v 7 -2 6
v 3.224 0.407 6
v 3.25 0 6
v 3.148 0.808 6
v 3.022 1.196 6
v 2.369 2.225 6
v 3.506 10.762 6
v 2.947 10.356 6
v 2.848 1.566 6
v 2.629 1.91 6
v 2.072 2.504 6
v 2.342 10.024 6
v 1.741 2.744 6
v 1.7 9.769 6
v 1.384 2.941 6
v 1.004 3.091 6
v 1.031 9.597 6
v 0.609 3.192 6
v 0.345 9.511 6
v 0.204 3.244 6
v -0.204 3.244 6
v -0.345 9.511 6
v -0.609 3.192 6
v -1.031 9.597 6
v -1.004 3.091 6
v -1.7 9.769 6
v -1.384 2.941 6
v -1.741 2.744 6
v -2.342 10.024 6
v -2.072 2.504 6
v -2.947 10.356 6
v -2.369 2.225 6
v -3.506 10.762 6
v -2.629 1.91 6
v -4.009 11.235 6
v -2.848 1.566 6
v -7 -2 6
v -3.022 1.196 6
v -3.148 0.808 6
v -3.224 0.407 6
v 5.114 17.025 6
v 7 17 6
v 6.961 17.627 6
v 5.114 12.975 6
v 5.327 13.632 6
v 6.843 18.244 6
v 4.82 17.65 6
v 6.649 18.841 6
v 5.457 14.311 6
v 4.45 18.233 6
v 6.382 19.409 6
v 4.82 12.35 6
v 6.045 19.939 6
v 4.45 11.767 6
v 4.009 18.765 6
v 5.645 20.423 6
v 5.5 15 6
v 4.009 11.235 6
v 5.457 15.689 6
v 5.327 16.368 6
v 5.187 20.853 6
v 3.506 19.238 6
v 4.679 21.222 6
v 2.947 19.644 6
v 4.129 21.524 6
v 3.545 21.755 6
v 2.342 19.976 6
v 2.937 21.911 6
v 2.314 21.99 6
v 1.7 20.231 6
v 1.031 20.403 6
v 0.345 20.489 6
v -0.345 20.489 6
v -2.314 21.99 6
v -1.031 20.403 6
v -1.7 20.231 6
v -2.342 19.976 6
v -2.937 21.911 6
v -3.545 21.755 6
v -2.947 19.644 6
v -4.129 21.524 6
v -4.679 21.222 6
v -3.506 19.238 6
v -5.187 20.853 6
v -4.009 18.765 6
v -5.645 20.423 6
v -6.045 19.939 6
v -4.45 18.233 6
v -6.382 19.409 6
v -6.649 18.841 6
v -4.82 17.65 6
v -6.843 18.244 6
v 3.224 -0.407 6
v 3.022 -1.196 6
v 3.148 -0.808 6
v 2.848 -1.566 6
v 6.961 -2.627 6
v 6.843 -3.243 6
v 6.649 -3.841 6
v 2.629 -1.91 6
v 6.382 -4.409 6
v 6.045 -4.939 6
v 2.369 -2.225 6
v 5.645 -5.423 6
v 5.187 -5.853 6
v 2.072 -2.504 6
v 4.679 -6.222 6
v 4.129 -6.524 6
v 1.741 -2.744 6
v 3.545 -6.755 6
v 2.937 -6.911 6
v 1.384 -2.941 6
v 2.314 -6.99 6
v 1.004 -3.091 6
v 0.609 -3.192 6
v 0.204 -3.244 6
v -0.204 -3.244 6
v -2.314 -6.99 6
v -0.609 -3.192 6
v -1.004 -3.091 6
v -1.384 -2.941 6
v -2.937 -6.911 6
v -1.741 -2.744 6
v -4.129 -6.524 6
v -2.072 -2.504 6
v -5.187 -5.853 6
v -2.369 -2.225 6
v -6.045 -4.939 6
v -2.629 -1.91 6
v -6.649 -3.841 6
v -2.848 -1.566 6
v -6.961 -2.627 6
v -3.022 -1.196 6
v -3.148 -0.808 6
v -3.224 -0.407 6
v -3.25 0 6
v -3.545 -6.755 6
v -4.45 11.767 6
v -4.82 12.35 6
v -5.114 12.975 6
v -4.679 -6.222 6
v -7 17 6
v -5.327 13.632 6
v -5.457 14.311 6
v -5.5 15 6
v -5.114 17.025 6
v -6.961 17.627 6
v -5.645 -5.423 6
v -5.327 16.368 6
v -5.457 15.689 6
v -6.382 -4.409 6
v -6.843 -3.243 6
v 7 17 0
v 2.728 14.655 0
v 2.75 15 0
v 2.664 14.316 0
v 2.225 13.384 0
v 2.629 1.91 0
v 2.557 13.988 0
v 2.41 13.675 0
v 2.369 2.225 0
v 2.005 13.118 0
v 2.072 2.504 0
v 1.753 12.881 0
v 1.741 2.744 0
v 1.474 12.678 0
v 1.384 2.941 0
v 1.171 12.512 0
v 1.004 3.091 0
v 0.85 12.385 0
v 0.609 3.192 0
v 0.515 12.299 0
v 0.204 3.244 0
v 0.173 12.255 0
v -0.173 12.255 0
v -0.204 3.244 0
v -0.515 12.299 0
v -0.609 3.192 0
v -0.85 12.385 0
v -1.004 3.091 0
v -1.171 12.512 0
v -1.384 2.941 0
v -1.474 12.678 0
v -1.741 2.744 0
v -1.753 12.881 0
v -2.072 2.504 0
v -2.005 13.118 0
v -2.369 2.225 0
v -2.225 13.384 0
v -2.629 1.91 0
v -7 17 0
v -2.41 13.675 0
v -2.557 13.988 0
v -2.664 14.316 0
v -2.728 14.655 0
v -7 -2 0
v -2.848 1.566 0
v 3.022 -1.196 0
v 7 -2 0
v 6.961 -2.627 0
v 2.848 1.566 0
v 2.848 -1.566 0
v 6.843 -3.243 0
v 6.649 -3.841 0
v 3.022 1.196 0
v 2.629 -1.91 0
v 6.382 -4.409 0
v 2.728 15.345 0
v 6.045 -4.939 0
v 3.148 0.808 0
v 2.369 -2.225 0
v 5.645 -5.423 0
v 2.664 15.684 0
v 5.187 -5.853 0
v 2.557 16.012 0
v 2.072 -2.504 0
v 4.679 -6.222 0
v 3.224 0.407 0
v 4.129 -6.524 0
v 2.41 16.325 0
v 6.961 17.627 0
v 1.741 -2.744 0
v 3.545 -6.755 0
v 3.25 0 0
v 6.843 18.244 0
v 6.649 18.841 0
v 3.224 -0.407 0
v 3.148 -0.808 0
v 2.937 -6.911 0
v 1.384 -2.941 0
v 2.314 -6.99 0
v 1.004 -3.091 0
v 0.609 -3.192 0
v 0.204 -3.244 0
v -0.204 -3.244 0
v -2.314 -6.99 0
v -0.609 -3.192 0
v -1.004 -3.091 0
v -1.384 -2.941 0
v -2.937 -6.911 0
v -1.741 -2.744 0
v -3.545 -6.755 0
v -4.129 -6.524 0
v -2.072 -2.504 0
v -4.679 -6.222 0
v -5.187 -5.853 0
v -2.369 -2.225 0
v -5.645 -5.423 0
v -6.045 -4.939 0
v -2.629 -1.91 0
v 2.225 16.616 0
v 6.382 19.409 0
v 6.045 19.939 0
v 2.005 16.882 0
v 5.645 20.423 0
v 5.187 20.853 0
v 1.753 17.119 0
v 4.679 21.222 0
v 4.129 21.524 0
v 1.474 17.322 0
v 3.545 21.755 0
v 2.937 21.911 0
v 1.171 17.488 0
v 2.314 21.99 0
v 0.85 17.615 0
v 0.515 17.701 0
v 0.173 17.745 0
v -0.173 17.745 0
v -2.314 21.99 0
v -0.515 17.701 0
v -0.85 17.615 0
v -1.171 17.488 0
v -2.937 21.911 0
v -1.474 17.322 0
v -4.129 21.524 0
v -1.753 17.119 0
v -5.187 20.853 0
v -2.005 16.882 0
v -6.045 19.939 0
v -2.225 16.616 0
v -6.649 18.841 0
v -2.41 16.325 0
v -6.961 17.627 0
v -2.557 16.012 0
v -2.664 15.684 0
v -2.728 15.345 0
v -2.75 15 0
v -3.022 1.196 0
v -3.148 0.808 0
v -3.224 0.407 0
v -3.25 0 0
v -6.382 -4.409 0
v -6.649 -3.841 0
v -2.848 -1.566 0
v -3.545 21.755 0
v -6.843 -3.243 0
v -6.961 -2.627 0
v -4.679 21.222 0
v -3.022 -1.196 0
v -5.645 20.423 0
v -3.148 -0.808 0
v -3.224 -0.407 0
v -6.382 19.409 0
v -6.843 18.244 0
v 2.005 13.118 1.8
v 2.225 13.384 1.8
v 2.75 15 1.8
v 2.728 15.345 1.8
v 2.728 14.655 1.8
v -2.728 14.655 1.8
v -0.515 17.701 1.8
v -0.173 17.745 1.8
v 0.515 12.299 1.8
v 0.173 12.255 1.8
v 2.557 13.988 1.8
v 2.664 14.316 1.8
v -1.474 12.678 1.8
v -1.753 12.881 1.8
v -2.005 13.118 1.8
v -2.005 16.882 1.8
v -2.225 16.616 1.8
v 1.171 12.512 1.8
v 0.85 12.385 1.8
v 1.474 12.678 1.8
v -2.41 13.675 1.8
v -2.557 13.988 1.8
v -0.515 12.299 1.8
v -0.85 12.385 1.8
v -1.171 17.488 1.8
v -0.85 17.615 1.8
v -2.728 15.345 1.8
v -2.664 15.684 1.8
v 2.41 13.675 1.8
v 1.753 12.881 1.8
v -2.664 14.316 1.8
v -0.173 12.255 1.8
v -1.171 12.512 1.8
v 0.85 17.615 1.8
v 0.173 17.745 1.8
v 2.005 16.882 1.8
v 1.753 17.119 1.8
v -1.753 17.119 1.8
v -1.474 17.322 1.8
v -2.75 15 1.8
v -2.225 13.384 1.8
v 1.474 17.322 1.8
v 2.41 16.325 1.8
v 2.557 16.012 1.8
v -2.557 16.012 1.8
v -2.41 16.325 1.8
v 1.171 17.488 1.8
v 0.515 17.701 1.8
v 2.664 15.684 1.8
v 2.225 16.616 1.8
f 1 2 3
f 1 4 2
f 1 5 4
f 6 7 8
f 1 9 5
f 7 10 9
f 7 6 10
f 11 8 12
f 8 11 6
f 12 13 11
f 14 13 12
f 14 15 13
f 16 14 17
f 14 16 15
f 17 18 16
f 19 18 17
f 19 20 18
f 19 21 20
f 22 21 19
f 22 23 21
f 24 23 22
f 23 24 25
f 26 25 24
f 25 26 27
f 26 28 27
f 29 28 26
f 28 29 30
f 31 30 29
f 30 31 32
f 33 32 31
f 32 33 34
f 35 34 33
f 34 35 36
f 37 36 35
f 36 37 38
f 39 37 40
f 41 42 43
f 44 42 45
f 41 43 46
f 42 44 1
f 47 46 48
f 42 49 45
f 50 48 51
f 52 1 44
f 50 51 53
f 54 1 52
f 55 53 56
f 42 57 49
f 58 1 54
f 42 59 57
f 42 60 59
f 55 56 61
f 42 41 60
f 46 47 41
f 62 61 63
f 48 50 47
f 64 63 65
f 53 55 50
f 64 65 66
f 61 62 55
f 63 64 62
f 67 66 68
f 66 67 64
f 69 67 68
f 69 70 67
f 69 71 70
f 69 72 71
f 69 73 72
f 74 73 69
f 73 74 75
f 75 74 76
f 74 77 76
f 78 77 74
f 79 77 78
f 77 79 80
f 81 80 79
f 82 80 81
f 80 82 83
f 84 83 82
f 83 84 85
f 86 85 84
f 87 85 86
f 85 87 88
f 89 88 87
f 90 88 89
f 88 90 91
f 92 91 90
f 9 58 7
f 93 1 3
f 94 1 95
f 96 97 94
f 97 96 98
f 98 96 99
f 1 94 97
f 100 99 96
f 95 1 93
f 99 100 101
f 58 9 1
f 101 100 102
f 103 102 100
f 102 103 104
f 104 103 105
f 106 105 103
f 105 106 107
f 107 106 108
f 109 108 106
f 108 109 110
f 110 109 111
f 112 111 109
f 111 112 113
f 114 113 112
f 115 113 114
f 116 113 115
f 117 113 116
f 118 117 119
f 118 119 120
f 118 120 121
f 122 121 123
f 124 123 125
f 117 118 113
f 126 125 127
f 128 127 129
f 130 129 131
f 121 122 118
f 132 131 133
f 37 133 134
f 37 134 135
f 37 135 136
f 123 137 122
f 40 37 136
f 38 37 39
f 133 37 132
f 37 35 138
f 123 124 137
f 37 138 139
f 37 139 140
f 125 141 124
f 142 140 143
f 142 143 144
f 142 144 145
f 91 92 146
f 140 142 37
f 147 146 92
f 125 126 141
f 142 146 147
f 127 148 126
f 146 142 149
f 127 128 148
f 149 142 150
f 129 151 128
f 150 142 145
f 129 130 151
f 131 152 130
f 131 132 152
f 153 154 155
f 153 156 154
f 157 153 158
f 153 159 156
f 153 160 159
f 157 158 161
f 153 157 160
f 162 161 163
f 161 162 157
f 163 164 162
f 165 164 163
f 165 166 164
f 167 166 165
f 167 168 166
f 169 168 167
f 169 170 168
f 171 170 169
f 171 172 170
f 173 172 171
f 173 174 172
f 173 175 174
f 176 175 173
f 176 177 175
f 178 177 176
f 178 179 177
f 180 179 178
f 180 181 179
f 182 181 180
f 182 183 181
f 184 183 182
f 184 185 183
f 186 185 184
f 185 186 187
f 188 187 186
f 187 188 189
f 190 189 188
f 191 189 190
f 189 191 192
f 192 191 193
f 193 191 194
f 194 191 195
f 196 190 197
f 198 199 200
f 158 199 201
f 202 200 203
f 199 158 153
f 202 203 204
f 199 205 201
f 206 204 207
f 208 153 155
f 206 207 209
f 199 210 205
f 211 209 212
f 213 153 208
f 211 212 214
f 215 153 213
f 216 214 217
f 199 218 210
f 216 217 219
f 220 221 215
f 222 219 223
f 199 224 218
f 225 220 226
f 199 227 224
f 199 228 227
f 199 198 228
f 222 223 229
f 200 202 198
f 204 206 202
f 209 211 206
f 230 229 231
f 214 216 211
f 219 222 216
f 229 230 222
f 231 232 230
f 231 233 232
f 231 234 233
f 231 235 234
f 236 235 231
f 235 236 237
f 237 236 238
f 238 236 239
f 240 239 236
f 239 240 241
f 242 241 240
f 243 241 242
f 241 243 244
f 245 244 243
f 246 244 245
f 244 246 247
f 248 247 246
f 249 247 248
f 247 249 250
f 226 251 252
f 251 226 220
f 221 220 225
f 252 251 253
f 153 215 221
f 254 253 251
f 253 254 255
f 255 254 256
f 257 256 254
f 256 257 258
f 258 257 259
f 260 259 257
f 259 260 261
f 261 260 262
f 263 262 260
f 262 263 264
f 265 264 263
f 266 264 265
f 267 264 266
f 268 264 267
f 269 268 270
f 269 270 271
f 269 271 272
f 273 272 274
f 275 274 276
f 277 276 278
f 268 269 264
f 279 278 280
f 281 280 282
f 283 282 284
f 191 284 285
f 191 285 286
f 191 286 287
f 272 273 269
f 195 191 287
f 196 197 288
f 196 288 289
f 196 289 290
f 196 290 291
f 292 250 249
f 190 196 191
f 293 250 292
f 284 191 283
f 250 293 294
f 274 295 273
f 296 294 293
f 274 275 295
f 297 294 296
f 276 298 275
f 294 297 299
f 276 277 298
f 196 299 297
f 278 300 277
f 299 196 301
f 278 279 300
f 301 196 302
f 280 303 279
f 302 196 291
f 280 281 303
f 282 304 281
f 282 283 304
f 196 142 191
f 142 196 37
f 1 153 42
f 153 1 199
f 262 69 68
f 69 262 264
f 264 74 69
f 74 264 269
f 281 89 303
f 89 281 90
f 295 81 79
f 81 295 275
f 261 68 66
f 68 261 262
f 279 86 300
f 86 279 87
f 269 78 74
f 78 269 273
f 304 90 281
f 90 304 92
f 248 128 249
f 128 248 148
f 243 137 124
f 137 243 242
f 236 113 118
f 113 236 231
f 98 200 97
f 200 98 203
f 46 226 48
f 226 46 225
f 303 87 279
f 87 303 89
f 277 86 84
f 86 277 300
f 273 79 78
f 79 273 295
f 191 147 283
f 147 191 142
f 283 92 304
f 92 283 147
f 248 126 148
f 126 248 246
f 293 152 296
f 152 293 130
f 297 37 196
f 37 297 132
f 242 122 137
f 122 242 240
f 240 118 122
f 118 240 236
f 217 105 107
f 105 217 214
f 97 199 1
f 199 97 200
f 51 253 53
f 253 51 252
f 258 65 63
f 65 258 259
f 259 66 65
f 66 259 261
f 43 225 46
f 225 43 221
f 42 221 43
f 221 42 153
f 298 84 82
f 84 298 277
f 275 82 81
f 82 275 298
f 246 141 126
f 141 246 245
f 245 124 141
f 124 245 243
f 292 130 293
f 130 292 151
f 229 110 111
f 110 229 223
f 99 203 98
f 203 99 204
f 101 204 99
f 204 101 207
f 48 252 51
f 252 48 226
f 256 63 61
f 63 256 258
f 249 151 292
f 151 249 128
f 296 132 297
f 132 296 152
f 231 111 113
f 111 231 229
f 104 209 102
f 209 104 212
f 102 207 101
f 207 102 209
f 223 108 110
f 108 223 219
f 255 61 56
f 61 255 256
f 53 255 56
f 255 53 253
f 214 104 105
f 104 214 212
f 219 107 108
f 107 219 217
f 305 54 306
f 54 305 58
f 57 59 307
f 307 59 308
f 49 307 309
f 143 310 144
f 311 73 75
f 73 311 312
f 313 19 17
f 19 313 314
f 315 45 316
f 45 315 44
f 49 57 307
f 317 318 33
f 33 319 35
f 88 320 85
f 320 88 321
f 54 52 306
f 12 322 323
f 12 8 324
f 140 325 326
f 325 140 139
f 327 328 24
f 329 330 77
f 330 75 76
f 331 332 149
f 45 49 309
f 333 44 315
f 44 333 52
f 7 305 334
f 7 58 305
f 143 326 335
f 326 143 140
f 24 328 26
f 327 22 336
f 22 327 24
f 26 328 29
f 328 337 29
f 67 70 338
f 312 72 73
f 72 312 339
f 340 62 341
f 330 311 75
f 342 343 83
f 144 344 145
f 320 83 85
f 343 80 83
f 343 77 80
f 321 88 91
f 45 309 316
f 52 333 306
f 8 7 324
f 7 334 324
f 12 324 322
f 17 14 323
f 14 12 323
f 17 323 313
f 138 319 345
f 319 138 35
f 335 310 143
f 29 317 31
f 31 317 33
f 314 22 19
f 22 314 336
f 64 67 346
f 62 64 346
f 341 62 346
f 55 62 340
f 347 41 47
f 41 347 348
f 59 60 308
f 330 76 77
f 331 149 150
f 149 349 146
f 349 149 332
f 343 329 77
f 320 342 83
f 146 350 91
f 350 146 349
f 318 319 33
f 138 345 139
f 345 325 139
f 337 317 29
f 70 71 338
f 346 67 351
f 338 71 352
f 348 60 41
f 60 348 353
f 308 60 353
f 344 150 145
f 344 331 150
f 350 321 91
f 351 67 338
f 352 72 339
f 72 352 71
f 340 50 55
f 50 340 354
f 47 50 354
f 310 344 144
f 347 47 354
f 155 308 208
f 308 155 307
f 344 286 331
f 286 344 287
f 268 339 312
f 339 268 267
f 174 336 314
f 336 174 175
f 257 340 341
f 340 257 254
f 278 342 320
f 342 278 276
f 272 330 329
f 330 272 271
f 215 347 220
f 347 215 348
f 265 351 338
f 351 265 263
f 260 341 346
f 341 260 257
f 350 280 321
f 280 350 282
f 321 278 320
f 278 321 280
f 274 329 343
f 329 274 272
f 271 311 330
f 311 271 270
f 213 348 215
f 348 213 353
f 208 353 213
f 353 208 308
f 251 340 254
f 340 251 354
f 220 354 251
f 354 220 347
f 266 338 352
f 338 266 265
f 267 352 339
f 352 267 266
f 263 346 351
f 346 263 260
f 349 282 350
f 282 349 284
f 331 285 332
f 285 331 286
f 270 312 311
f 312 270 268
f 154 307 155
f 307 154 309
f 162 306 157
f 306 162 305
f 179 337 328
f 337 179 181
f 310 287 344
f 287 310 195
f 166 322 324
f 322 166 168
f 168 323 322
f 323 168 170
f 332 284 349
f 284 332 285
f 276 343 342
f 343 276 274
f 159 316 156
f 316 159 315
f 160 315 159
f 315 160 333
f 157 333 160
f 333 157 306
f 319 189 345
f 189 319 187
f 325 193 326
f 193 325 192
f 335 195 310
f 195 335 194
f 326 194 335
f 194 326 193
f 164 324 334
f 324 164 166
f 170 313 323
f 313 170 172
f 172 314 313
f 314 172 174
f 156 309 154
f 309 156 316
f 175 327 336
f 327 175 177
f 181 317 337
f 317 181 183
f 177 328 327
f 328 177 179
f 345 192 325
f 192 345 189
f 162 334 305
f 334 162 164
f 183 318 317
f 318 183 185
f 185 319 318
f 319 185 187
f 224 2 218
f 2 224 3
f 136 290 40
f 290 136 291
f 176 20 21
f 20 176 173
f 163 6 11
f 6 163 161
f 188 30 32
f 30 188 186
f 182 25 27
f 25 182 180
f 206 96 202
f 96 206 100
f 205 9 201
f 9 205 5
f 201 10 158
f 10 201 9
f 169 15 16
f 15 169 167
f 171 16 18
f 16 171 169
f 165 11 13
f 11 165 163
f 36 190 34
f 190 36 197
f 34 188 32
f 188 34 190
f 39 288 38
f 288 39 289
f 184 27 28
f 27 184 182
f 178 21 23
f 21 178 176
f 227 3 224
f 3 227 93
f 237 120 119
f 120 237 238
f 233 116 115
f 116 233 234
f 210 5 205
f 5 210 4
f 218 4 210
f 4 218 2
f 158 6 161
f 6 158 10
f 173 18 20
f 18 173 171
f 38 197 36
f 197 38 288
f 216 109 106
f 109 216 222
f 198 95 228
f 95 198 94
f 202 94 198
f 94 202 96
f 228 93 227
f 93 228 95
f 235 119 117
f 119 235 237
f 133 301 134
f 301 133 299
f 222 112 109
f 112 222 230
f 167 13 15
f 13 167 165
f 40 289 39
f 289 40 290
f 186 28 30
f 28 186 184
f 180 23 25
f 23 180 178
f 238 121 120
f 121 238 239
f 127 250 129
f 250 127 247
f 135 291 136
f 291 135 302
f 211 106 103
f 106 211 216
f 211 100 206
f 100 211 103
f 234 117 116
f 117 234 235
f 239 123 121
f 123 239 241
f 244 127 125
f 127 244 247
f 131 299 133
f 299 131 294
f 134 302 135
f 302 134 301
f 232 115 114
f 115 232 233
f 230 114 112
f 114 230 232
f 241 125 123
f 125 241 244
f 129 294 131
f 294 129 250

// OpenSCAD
$fn = 50;


difference() {
	union() {
		cylinder(h = 6, r = 7.0000000000);
		translate(v = [0.0000000000, 7.5000000000, 0]) {
			hull() {
				translate(v = [-2.0000000000, 9.5000000000, 0]) {
					cylinder(h = 6, r = 5);
				}
				translate(v = [2.0000000000, 9.5000000000, 0]) {
					cylinder(h = 6, r = 5);
				}
				translate(v = [-2.0000000000, -9.5000000000, 0]) {
					cylinder(h = 6, r = 5);
				}
				translate(v = [2.0000000000, -9.5000000000, 0]) {
					cylinder(h = 6, r = 5);
				}
			}
		}
		translate(v = [0.0000000000, 7.5000000000, 0]) {
			hull() {
				translate(v = [-2.0000000000, 9.5000000000, 0]) {
					cylinder(h = 6, r = 5);
				}
				translate(v = [2.0000000000, 9.5000000000, 0]) {
					cylinder(h = 6, r = 5);
				}
				translate(v = [-2.0000000000, -9.5000000000, 0]) {
					cylinder(h = 6, r = 5);
				}
				translate(v = [2.0000000000, -9.5000000000, 0]) {
					cylinder(h = 6, r = 5);
				}
			}
		}
	}
	union() {
		translate(v = [0.0000000000, 15.0000000000, 6]) {
			rotate(a = [0, 0, 0]) {
				difference() {
					union() {
						#translate(v = [0, 0, -6.0000000000]) {
							cylinder(h = 6, r = 2.2500000000);
						}
						#translate(v = [0, 0, -4.2000000000]) {
							cylinder(h = 4.2000000000, r1 = 2.7500000000, r2 = 5.5000000000);
						}
						#translate(v = [0, 0, -6.0000000000]) {
							cylinder(h = 6, r = 2.7500000000);
						}
						#translate(v = [0, 0, -6.0000000000]) {
							cylinder(h = 6, r = 2.2500000000);
						}
					}
					union();
				}
			}
		}
		translate(v = [0.0000000000, 15.0000000000, 6]) {
			rotate(a = [0, 0, 0]) {
				difference() {
					union() {
						#translate(v = [0, 0, -6.0000000000]) {
							cylinder(h = 6, r = 2.2500000000);
						}
						#translate(v = [0, 0, -4.2000000000]) {
							cylinder(h = 4.2000000000, r1 = 2.7500000000, r2 = 5.5000000000);
						}
						#translate(v = [0, 0, -6.0000000000]) {
							cylinder(h = 6, r = 2.7500000000);
						}
						#translate(v = [0, 0, -6.0000000000]) {
							cylinder(h = 6, r = 2.2500000000);
						}
					}
					union();
				}
			}
		}
		translate(v = [0, 0, -100]) {
			cylinder(h = 200, r = 3.2500000000);
		}
		translate(v = [0, 0, -100]) {
			cylinder(h = 200, r = 1.8000000000);
		}
	}
}
